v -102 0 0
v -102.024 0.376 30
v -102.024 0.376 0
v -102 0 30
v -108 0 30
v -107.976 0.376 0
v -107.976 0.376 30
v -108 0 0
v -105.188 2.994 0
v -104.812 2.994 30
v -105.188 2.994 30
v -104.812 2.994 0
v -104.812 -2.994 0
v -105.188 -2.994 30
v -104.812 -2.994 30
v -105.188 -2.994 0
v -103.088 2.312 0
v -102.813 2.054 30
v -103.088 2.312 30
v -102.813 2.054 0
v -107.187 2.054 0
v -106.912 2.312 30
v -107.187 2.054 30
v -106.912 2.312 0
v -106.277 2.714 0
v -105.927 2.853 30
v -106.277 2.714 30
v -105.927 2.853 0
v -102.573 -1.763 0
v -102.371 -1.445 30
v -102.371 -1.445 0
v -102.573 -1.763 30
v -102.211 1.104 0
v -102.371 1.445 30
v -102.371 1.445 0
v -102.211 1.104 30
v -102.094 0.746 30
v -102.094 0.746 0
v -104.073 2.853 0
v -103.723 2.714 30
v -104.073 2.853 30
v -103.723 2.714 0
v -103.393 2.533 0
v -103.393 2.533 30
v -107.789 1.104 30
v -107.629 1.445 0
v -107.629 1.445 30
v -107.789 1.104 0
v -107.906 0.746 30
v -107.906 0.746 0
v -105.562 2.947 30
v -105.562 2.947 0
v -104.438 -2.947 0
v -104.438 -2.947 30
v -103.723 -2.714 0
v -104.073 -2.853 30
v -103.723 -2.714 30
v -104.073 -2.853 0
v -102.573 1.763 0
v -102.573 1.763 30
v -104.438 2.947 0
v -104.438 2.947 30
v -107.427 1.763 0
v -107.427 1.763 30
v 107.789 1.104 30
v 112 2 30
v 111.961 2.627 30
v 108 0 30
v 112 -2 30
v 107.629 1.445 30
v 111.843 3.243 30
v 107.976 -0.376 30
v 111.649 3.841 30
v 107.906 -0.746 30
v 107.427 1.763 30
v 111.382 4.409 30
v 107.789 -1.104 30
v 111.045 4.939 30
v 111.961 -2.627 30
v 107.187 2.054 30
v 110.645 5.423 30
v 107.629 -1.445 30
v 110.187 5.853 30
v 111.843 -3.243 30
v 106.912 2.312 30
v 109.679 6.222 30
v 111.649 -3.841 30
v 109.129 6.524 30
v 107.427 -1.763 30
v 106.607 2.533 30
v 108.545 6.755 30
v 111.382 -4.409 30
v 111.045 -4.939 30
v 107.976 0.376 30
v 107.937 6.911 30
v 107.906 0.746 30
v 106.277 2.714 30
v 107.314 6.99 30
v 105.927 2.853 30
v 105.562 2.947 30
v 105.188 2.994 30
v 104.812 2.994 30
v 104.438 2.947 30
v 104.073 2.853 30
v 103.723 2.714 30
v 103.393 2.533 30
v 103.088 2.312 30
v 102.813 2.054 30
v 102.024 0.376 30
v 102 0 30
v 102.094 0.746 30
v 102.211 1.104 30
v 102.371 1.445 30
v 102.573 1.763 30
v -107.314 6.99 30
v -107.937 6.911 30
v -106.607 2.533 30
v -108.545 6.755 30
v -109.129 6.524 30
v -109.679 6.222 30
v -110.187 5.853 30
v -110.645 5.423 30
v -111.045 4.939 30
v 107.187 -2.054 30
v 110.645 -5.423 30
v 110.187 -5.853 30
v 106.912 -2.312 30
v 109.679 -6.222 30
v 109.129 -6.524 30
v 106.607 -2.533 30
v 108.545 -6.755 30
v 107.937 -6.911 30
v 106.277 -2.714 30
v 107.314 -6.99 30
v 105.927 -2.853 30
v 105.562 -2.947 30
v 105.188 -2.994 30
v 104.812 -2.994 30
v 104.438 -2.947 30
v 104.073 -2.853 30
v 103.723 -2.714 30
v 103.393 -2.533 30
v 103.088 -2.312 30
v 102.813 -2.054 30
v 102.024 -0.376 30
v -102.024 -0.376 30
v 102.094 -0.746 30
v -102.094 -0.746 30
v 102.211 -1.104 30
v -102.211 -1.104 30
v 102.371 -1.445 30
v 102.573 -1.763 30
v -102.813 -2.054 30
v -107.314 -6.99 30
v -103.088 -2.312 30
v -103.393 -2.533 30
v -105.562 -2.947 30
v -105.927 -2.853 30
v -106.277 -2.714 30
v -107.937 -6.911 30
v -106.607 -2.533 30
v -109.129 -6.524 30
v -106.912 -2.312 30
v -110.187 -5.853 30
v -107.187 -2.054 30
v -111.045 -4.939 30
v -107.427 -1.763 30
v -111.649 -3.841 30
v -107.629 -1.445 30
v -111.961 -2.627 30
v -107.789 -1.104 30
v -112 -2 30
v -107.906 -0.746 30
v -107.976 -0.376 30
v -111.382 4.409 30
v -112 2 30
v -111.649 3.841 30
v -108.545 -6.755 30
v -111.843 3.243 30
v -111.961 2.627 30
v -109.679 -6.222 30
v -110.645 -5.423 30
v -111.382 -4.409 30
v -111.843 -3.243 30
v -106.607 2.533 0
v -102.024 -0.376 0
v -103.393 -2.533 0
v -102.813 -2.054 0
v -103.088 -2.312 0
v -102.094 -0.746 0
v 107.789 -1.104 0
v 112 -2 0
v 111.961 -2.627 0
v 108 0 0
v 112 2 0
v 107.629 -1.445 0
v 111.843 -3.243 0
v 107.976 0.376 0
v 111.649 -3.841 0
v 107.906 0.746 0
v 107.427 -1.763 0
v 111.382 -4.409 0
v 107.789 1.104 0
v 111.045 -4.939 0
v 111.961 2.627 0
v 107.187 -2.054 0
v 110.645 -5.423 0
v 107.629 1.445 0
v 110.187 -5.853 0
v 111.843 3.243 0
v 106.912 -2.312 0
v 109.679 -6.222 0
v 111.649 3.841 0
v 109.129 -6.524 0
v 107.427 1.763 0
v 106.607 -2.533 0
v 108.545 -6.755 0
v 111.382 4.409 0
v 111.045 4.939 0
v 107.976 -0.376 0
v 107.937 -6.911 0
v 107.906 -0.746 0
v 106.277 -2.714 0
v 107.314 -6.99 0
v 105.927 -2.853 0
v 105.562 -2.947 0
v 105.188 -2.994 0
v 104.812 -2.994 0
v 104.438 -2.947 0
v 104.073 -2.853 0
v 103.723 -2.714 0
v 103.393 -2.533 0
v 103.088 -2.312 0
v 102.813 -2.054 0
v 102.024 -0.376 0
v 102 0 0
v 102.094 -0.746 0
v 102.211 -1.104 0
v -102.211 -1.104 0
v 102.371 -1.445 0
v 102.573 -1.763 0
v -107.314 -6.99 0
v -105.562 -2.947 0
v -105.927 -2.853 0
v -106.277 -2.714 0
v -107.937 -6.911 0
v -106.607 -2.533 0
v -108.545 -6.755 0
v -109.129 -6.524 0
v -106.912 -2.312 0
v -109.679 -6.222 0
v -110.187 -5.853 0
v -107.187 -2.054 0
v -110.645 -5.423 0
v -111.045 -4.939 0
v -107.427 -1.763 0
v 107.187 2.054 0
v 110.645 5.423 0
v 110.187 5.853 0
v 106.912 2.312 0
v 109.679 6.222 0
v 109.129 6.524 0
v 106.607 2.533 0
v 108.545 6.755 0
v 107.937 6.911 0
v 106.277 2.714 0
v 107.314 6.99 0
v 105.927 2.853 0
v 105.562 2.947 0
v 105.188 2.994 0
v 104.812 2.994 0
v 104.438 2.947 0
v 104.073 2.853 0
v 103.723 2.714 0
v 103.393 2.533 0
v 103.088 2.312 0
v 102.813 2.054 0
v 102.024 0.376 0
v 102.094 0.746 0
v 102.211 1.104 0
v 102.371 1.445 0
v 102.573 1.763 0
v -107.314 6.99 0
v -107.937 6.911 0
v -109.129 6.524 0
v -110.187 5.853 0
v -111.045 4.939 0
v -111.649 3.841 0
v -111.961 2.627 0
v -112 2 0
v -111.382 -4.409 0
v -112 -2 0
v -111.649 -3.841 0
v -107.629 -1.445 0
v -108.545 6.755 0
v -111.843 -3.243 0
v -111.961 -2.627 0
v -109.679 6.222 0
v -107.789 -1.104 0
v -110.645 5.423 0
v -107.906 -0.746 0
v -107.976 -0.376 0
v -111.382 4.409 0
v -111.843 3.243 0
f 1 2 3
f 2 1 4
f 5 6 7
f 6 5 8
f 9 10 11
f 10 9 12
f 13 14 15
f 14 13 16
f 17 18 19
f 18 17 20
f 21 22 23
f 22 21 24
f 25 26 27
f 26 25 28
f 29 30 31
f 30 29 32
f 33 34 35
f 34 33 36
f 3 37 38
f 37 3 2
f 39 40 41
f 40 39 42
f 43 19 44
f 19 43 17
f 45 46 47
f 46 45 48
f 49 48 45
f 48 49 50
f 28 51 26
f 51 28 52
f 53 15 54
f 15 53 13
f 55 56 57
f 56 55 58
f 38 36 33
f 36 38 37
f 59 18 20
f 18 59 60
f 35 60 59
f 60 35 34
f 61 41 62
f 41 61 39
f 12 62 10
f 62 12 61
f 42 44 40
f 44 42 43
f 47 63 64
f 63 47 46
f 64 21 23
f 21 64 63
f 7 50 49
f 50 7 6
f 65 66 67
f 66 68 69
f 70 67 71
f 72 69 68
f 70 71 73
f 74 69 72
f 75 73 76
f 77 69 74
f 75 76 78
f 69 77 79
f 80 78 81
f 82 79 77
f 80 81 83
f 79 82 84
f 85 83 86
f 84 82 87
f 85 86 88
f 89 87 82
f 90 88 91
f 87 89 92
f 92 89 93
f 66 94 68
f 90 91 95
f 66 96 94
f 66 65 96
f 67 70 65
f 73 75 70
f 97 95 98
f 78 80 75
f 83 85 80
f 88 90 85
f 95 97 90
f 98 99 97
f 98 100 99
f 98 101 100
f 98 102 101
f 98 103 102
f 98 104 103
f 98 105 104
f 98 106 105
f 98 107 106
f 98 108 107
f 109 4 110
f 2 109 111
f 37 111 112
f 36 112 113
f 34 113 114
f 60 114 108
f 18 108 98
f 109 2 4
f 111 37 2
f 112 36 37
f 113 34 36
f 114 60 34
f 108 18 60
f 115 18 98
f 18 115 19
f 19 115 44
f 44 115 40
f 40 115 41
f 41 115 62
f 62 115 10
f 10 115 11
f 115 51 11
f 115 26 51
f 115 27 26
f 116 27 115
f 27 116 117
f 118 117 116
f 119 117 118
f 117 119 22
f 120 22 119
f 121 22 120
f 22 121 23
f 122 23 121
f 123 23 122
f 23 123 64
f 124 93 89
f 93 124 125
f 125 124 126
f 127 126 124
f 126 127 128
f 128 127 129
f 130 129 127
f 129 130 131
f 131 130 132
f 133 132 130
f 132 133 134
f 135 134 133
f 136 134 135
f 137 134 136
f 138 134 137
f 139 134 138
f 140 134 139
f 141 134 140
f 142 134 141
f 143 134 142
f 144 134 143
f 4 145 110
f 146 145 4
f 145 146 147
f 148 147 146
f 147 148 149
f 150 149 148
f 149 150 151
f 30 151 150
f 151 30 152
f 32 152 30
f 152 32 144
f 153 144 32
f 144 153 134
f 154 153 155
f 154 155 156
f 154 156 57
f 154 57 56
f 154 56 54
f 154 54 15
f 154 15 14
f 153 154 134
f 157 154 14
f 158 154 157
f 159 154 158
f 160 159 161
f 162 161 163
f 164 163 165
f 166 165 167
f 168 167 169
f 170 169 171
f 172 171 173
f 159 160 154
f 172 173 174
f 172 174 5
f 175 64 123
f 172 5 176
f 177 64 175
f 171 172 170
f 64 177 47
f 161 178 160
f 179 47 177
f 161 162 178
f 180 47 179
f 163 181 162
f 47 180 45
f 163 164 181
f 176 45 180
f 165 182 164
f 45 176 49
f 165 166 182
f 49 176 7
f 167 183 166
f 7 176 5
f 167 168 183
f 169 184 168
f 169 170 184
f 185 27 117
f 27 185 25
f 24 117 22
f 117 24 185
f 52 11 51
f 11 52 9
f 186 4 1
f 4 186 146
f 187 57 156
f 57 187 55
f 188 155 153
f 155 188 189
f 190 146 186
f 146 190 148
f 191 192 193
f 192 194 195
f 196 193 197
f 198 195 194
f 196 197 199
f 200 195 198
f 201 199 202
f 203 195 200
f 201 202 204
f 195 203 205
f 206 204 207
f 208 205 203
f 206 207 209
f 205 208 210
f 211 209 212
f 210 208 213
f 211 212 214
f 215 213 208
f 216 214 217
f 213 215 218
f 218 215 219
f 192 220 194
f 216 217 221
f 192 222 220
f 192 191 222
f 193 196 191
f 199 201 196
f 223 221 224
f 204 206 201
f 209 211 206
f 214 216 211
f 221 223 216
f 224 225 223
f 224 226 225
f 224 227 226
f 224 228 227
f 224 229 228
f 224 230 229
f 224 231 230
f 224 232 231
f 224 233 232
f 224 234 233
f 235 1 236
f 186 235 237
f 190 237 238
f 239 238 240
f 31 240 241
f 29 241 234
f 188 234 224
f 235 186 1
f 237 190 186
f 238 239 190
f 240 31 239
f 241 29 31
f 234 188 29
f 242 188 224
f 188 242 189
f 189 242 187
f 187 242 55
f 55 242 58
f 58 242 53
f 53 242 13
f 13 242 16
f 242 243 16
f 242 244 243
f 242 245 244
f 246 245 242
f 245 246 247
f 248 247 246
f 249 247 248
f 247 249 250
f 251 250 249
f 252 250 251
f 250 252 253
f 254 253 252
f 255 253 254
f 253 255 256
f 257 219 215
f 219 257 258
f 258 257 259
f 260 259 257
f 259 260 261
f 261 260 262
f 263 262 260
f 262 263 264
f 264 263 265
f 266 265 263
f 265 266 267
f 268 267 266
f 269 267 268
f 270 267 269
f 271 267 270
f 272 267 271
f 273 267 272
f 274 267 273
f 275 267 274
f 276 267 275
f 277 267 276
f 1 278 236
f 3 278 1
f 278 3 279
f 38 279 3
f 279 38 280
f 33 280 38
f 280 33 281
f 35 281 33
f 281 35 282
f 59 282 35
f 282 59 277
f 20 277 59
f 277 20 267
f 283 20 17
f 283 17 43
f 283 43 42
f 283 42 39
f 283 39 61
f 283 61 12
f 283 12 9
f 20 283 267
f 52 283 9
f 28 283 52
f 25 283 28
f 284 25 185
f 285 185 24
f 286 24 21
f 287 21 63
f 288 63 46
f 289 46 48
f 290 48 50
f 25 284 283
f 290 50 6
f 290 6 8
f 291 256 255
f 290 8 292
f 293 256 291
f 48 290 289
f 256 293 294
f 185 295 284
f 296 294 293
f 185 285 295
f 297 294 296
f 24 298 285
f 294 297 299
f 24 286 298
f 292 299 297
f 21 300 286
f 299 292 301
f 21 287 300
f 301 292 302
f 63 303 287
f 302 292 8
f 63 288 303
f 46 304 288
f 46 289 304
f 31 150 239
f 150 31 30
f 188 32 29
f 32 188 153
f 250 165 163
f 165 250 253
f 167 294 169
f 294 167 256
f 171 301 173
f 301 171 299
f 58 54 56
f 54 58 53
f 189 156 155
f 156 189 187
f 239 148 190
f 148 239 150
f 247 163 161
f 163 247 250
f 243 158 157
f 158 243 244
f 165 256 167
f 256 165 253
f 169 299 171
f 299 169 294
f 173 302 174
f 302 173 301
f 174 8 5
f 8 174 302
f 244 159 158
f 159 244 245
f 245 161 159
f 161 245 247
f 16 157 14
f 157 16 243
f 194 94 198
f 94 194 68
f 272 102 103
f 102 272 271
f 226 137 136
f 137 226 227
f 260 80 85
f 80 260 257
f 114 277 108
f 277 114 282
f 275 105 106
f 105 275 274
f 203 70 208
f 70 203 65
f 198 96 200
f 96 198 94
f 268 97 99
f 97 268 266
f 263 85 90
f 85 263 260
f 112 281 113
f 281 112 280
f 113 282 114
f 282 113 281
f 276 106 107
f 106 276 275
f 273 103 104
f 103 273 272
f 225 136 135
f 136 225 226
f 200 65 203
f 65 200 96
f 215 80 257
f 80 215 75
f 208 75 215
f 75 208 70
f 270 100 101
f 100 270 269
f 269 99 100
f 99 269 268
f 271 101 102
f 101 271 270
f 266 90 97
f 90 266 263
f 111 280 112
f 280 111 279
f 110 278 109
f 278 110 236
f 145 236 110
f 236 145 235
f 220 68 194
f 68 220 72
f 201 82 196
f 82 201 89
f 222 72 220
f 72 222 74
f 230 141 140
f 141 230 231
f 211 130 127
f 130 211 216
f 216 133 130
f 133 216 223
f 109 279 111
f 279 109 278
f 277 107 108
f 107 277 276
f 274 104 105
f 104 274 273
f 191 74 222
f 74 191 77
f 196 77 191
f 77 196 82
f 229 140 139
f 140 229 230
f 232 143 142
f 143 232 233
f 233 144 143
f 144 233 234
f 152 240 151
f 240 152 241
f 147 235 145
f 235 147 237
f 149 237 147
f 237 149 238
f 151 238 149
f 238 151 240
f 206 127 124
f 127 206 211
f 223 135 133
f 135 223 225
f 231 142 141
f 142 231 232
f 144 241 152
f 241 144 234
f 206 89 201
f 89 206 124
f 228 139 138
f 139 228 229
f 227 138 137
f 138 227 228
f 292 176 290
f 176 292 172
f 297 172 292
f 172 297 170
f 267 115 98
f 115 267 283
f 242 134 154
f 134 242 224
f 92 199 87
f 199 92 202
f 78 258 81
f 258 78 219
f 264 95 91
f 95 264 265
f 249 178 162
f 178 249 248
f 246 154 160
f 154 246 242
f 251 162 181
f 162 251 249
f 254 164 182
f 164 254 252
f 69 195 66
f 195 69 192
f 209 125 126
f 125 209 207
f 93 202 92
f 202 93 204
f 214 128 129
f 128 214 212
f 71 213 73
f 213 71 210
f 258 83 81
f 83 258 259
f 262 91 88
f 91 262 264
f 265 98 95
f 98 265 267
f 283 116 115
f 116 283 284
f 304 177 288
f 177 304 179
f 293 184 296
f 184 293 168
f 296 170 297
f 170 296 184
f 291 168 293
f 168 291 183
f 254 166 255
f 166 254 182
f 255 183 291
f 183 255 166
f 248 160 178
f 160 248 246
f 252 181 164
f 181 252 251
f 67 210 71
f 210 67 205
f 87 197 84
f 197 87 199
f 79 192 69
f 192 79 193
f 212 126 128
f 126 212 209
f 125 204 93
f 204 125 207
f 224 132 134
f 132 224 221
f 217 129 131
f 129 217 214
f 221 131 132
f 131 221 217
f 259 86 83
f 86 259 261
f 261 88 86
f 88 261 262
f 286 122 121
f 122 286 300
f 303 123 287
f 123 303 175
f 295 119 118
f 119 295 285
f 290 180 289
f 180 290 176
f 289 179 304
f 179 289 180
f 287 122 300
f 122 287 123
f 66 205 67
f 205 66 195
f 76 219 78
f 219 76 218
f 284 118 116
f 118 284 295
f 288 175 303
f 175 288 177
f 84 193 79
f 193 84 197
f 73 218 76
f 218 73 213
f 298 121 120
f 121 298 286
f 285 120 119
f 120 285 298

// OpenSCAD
$fn = 50;


difference() {
	union() {
		hull() {
			translate(v = [-107.0000000000, 2.0000000000, 0]) {
				cylinder(h = 30, r = 5);
			}
			translate(v = [107.0000000000, 2.0000000000, 0]) {
				cylinder(h = 30, r = 5);
			}
			translate(v = [-107.0000000000, -2.0000000000, 0]) {
				cylinder(h = 30, r = 5);
			}
			translate(v = [107.0000000000, -2.0000000000, 0]) {
				cylinder(h = 30, r = 5);
			}
		}
	}
	union() {
		translate(v = [-105.0000000000, 0.0000000000, 0]) {
			cylinder(h = 30, r = 3.0000000000);
		}
		translate(v = [105.0000000000, 0.0000000000, 0]) {
			cylinder(h = 30, r = 3.0000000000);
		}
		translate(v = [-105.0000000000, 0.0000000000, 0]) {
			cylinder(h = 30, r = 1.5000000000);
		}
		translate(v = [105.0000000000, 0.0000000000, 0]) {
			cylinder(h = 30, r = 1.5000000000);
		}
		translate(v = [-105.0000000000, 0.0000000000, 0]) {
			cylinder(h = 30, r = 1.5000000000);
		}
		translate(v = [105.0000000000, 0.0000000000, 0]) {
			cylinder(h = 30, r = 1.5000000000);
		}
		translate(v = [-105.0000000000, 0.0000000000, 0]) {
			cylinder(h = 30, r = 1.5000000000);
		}
		translate(v = [105.0000000000, 0.0000000000, 0]) {
			cylinder(h = 30, r = 1.5000000000);
		}
	}
}
